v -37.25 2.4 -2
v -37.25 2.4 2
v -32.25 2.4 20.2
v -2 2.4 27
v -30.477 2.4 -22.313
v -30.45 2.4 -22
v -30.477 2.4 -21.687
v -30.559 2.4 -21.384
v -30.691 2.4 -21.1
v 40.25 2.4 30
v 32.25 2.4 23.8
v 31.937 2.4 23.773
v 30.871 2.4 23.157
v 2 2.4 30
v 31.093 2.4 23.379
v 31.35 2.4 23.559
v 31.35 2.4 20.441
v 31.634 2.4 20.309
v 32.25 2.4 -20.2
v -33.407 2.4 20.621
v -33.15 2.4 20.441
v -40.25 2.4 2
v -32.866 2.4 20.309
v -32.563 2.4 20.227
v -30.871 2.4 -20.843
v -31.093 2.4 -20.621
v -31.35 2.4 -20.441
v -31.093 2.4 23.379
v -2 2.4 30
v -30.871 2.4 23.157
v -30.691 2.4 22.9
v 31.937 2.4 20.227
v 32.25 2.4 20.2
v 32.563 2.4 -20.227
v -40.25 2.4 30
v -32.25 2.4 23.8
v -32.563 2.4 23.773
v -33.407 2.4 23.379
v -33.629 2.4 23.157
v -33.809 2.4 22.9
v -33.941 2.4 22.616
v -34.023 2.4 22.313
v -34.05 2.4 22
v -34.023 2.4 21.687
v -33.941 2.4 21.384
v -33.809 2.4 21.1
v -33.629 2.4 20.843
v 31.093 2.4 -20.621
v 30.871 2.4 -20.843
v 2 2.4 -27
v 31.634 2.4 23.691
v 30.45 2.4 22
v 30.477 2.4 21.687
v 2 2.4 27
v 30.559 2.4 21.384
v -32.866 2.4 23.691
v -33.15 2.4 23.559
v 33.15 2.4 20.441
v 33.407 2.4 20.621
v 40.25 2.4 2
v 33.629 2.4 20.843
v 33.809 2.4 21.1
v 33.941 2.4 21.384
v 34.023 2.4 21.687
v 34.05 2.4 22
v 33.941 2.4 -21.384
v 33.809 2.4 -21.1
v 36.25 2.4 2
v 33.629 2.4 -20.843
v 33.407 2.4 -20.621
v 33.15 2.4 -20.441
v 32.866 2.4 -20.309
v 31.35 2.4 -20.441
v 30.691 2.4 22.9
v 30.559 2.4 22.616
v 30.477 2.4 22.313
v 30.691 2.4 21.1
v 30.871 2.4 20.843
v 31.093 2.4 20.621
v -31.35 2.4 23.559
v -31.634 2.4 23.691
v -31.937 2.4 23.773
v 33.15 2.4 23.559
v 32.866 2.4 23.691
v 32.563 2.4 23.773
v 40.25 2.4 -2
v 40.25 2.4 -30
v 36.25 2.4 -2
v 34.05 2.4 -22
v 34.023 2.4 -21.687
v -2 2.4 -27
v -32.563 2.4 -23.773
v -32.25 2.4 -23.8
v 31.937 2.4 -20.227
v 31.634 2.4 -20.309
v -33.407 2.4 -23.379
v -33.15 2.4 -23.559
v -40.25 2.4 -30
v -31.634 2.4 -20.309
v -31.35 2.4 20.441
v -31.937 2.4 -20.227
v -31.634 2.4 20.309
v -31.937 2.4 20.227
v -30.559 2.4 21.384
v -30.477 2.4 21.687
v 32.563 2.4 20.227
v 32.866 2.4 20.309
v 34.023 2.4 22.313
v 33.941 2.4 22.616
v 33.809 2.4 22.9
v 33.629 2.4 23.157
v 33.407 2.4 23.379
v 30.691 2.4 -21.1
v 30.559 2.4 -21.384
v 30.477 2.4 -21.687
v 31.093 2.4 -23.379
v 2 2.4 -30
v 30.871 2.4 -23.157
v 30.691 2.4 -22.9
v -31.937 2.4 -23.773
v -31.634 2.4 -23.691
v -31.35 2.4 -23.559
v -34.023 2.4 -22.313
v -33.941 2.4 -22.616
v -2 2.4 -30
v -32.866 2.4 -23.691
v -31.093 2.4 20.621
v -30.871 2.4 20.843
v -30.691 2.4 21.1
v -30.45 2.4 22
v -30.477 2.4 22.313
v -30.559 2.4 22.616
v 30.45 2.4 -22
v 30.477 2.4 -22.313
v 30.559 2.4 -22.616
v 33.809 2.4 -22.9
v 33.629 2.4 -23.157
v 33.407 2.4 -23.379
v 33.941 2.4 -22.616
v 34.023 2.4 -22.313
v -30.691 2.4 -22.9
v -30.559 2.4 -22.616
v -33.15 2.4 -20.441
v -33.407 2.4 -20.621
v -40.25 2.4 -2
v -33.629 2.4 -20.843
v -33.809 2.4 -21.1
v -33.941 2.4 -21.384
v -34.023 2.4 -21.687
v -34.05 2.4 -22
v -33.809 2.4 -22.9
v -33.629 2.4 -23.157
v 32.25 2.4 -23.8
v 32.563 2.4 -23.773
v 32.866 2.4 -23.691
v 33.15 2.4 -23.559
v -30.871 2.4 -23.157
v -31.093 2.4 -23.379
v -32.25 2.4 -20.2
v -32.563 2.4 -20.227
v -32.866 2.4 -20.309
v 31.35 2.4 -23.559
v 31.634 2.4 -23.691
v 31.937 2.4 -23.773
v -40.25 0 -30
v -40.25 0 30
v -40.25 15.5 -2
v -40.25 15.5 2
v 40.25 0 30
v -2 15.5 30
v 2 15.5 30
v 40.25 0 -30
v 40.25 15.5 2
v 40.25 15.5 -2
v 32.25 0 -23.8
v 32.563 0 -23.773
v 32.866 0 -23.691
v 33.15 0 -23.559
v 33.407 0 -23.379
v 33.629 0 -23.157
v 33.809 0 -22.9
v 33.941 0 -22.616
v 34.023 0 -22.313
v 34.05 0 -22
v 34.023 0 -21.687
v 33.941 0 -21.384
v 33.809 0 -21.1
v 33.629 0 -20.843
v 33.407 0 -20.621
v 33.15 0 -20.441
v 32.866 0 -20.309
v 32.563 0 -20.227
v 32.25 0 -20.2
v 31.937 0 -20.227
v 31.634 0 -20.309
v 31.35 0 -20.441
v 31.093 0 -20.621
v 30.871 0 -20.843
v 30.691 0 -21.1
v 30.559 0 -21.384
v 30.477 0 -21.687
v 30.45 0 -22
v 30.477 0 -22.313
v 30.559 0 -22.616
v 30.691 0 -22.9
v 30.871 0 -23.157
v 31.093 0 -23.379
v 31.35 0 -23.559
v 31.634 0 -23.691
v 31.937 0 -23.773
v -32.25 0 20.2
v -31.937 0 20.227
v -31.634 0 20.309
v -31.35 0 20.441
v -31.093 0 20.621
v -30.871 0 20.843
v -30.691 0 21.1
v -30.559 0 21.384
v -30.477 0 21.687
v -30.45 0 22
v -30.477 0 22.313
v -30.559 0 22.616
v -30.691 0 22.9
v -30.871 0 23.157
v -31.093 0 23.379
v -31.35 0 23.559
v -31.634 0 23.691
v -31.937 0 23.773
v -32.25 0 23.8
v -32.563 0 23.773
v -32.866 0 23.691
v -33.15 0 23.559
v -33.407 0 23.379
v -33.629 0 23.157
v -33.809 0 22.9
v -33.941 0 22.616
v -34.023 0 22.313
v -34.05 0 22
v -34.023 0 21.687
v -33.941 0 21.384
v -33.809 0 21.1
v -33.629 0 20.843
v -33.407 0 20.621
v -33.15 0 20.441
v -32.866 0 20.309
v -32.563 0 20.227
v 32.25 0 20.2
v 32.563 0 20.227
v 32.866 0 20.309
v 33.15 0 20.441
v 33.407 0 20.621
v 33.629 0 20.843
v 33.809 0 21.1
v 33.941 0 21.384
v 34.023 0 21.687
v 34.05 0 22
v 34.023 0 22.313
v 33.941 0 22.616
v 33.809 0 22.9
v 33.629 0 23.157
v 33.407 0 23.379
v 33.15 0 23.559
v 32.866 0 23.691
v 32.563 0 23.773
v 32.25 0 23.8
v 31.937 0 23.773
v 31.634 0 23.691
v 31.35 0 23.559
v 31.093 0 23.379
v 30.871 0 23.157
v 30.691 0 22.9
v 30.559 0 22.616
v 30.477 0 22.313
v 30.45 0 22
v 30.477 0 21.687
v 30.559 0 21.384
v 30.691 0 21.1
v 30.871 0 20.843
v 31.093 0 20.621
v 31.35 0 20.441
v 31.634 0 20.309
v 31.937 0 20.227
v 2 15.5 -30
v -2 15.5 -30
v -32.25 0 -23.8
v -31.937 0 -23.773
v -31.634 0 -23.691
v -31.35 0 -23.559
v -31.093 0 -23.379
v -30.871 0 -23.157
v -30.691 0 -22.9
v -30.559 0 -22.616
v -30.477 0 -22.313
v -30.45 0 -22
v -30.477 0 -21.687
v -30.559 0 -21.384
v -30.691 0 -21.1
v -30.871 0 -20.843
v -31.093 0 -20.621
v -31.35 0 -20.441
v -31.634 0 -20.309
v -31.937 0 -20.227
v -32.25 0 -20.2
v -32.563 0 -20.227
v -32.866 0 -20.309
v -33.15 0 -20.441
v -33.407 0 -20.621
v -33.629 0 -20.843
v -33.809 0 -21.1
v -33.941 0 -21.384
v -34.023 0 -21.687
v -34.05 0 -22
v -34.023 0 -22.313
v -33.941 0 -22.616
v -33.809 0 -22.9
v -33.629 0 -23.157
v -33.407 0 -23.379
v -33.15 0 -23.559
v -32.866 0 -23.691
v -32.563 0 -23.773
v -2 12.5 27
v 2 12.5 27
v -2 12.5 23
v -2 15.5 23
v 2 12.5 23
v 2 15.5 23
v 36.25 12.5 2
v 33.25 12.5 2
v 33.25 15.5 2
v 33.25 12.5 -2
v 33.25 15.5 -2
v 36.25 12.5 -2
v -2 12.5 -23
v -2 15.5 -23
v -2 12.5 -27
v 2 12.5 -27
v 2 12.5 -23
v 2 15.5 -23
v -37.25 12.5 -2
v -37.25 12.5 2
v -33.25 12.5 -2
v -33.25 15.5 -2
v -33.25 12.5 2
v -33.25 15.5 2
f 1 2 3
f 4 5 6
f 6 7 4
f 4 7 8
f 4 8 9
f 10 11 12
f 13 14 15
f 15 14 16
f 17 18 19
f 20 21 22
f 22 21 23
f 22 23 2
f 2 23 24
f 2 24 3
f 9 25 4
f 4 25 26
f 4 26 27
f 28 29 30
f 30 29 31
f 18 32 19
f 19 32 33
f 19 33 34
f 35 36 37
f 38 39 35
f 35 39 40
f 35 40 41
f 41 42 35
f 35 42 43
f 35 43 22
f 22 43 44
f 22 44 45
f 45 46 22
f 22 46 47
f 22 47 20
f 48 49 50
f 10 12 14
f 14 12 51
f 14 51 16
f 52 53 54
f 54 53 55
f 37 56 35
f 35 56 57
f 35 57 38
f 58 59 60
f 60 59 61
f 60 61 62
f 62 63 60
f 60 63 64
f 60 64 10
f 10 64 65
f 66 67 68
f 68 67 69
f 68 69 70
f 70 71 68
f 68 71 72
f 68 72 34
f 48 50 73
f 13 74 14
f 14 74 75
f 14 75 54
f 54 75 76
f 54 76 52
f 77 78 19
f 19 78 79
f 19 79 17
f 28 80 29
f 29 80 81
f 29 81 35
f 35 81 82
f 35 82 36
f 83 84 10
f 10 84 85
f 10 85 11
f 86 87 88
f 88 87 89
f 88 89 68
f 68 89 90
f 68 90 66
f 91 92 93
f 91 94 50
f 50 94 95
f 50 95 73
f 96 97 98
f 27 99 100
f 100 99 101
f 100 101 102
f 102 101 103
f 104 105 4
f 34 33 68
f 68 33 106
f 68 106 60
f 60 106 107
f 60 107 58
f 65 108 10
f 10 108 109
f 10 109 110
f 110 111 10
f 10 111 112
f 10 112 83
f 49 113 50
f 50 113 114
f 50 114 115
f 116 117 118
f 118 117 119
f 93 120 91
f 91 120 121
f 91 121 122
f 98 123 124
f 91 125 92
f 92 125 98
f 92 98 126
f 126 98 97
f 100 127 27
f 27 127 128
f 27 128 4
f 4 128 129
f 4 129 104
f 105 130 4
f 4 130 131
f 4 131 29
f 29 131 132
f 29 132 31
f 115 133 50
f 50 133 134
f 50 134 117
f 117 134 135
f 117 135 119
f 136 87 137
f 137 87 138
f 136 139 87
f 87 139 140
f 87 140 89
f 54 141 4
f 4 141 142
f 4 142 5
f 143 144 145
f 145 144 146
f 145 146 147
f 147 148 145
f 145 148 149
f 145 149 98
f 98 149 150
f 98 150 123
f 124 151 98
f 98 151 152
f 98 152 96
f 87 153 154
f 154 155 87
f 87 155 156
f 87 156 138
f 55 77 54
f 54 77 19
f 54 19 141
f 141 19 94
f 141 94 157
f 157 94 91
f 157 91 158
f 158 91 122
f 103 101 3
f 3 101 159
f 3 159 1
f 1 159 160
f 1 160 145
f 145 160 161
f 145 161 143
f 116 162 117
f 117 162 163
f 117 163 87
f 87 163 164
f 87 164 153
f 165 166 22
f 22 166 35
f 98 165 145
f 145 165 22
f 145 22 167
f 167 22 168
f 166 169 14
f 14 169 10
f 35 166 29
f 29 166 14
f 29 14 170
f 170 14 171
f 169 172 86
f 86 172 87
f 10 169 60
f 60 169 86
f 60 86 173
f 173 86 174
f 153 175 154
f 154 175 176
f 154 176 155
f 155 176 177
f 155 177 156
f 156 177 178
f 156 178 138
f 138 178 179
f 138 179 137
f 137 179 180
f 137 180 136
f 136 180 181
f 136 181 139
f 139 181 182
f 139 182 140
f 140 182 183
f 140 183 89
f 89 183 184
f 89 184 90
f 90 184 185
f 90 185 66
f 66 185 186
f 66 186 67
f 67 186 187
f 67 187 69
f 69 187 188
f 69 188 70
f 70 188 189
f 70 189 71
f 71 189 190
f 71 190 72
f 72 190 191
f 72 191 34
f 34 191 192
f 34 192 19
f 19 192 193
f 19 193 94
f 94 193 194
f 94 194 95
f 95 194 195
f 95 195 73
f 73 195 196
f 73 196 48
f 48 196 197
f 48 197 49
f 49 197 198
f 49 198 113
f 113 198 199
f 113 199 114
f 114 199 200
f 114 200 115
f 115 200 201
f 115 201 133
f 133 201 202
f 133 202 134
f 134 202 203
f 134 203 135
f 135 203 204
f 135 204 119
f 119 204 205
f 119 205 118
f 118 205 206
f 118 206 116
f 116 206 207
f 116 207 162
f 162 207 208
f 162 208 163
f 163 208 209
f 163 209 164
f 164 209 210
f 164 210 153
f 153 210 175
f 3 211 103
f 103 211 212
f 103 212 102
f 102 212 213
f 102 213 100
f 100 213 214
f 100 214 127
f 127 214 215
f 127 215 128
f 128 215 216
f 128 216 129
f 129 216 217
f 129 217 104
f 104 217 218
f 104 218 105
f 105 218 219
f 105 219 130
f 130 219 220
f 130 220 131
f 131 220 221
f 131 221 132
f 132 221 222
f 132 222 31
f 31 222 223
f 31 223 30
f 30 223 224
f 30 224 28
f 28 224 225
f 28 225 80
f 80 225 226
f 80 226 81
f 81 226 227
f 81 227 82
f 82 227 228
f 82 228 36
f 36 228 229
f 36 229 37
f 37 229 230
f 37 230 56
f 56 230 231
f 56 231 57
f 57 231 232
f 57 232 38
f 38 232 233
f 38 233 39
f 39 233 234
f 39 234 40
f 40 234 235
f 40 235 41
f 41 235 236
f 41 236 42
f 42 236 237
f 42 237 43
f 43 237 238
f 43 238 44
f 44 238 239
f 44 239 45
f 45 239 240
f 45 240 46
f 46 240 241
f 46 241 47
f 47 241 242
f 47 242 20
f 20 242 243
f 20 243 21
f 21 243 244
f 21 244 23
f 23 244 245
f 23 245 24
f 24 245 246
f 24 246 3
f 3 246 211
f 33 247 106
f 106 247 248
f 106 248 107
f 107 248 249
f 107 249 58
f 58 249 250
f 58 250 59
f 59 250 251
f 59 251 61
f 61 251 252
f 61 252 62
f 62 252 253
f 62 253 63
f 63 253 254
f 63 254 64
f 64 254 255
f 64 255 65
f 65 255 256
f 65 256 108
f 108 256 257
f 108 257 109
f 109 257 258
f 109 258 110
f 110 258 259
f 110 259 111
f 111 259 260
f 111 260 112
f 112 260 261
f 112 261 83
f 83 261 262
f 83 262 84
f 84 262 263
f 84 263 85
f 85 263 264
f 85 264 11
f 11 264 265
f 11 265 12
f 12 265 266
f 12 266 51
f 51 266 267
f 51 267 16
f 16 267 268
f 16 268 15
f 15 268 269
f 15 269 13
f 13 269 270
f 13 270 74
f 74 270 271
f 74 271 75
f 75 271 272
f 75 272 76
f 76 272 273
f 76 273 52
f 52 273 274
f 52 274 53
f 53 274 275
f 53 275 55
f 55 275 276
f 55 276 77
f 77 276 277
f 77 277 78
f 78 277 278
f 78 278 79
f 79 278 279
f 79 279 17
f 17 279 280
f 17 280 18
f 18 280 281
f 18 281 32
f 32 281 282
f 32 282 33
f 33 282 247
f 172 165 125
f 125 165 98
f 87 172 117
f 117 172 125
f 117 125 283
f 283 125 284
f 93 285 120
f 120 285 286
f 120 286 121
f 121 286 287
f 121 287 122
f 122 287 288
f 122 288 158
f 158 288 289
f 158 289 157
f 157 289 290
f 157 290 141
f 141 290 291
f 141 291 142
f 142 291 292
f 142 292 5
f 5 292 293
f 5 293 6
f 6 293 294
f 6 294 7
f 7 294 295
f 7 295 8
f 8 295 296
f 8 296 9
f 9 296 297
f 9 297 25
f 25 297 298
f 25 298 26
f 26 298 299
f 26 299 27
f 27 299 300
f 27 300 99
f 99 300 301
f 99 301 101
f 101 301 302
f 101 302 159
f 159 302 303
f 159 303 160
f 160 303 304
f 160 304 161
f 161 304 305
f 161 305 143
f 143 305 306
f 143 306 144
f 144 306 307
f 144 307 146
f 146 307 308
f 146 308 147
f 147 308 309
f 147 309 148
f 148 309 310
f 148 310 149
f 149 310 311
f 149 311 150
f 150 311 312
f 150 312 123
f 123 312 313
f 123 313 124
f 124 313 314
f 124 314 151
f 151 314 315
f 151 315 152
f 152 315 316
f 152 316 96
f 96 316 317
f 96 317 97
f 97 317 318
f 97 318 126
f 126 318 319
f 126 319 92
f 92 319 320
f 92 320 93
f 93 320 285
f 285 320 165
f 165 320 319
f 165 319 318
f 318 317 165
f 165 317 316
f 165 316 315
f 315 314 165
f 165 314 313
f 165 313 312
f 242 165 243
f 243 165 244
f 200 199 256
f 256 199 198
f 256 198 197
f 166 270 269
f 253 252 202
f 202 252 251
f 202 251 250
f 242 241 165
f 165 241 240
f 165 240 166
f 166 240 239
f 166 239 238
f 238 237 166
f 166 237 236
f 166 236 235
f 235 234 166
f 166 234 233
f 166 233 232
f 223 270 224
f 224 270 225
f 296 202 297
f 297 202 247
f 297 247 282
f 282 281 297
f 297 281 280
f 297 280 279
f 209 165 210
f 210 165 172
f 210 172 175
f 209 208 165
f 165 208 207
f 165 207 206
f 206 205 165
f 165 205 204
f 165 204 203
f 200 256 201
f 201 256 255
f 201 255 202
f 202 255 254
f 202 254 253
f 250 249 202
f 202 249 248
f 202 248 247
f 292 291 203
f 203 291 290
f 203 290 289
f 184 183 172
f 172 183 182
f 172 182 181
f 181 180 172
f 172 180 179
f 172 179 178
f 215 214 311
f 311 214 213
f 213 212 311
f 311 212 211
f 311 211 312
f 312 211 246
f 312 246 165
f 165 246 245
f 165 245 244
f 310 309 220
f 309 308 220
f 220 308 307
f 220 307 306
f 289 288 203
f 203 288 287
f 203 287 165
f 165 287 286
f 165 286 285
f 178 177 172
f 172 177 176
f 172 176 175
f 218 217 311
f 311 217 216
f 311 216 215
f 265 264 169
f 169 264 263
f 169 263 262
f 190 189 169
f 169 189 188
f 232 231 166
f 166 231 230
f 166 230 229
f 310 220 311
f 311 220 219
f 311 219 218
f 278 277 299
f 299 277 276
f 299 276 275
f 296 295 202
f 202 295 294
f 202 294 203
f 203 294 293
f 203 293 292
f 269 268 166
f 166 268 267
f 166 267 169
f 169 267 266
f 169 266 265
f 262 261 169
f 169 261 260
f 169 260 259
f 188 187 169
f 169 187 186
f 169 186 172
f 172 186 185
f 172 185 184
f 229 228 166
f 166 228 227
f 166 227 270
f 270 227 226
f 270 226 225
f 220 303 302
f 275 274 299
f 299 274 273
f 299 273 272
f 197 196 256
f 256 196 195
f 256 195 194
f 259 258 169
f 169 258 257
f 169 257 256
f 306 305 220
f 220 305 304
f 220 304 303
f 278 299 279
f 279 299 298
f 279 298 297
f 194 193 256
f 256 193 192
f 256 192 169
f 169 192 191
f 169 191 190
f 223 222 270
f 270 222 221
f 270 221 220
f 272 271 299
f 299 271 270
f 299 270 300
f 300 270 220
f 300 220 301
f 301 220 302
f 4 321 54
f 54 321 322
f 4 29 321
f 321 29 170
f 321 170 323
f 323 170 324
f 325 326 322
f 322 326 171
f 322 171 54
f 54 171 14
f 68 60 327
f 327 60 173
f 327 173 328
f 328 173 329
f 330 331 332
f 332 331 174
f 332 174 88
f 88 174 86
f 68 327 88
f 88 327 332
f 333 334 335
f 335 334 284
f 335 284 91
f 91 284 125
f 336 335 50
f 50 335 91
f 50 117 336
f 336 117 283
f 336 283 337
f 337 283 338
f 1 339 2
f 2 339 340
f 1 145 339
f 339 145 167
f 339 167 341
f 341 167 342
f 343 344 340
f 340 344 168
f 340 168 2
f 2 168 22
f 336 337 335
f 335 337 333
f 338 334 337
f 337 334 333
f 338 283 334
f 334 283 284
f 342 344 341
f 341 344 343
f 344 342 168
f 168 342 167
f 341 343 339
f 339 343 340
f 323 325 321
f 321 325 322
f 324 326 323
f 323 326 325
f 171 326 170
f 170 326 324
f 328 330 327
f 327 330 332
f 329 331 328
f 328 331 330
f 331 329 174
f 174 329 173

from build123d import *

# Parameters (mm, degrees)
SKETCH2_W           = 80.5
SKETCH2_H           = 60
SKETCH2_R           = 1.8
BOSS_EXTRUDE1_DEPTH = 2.4
SKETCH2_3_W         = 4
SKETCH2_3_H         = 4
SKETCH2_3_H_2       = 3
SKETCH2_3_W_2       = 3
BOSS_EXTRUDE2_DEPTH = 12.5
SKETCH3_W           = 4
SKETCH3_H           = 7
SKETCH3_W_2         = 7
SKETCH3_H_2         = 4
BOSS_EXTRUDE3_DEPTH = 3


with BuildPart() as part:
    # Sketch2 → Boss-Extrude1 (new body)
    with BuildSketch(Plane(origin=(0, 0, 0), x_dir=(1, 0, 0), z_dir=(0, 1, 0))):
        Rectangle(SKETCH2_W, SKETCH2_H)
        with Locations((32.25, 22)):
            Circle(SKETCH2_R, mode=Mode.SUBTRACT)
        with Locations((-32.25, -22)):
            Circle(SKETCH2_R, mode=Mode.SUBTRACT)
        with Locations((32.25, -22)):
            Circle(SKETCH2_R, mode=Mode.SUBTRACT)
        with Locations((-32.25, 22)):
            Circle(SKETCH2_R, mode=Mode.SUBTRACT)
    extrude(amount=BOSS_EXTRUDE1_DEPTH)

    # Sketch2<3> → Boss-Extrude2 (add)
    with BuildSketch(Plane(origin=(0, 0, 0), x_dir=(1, 0, 0), z_dir=(0, 1, 0))):
        with Locations((38.25, 0)):
            Rectangle(SKETCH2_3_W, SKETCH2_3_H)
        with Locations((0, -28.5)):
            Rectangle(SKETCH2_3_W, SKETCH2_3_H_2)
        with Locations((-38.75, 0)):
            Rectangle(SKETCH2_3_W_2, SKETCH2_3_H)
        with Locations((0, 28.5)):
            Rectangle(SKETCH2_3_W, SKETCH2_3_H_2)
    extrude(amount=BOSS_EXTRUDE2_DEPTH)

    # Sketch3 → Boss-Extrude3 (add)
    with BuildSketch(Plane(origin=(0, 12.5, 0), x_dir=(1, 0, 0), z_dir=(0, 1, 0))):
        with Locations((0, 26.5)):
            Rectangle(SKETCH3_W, SKETCH3_H)
        with Locations((-36.75, 0)):
            Rectangle(SKETCH3_W_2, SKETCH3_H_2)
        with Locations((0, -26.5)):
            Rectangle(SKETCH3_W, SKETCH3_H)
        with Locations((36.75, 0)):
            Rectangle(SKETCH3_W_2, SKETCH3_H_2)
    extrude(amount=BOSS_EXTRUDE3_DEPTH)


solid = part.part
